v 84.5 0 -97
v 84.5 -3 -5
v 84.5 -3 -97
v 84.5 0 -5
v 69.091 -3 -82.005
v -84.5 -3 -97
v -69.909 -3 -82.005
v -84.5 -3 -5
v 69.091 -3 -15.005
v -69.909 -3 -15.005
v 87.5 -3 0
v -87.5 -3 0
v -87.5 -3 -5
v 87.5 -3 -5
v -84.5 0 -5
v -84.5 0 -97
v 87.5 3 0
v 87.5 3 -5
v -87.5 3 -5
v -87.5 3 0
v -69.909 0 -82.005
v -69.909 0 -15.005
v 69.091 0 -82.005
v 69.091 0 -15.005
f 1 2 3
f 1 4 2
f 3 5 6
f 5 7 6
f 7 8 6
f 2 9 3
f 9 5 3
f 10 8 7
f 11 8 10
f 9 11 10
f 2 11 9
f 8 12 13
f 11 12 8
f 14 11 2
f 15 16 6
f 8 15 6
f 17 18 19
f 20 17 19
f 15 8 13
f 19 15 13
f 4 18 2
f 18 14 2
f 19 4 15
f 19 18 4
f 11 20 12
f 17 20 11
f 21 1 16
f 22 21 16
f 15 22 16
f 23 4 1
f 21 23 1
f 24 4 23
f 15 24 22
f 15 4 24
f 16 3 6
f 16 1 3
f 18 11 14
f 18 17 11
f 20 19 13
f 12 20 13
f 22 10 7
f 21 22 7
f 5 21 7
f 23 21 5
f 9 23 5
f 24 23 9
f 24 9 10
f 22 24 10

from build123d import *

# Parameters (mm, degrees)
SKETCH1_W           = 169
SKETCH1_H           = 6
BOSS_EXTRUDE1_DEPTH = 5
SKETCH2_W           = 169
SKETCH2_H           = 3
BOSS_EXTRUDE2_DEPTH = 92
SKETCH3_W           = 5
SKETCH3_H           = 6
BOSS_EXTRUDE3_DEPTH = 3
SKETCH4_W           = 5
SKETCH4_H           = 6
BOSS_EXTRUDE4_DEPTH = 3
SKETCH8_W           = 139
SKETCH8_H           = 67
CUT_EXTRUDE2_DEPTH  = 3


with BuildPart() as part:
    # Sketch1 → Boss-Extrude1 (new body)
    with BuildSketch(Plane.XY):
        Rectangle(SKETCH1_W, SKETCH1_H)
    extrude(amount=-BOSS_EXTRUDE1_DEPTH)

    # Sketch2 → Boss-Extrude2 (add)
    with BuildSketch(Plane(origin=(0, 0, -5), x_dir=(-1, 0, 0), z_dir=(0, 0, -1))):
        with Locations((0, -1.5)):
            Rectangle(SKETCH2_W, SKETCH2_H)
    extrude(amount=BOSS_EXTRUDE2_DEPTH)

    # Sketch3 → Boss-Extrude3 (add)
    with BuildSketch(Plane(origin=(84.5, 0, 0), x_dir=(0, 0, -1), z_dir=(1, 0, 0))):
        with Locations((2.5, 0)):
            Rectangle(SKETCH3_W, SKETCH3_H)
    extrude(amount=BOSS_EXTRUDE3_DEPTH)

    # Sketch4 → Boss-Extrude4 (add)
    with BuildSketch(Plane.ZY.offset(84.5)):
        with Locations((-2.5, 0)):
            Rectangle(SKETCH4_W, SKETCH4_H)
    extrude(amount=BOSS_EXTRUDE4_DEPTH)

    # Sketch8 → Cut-Extrude2 (cut)
    with BuildSketch(Plane(origin=(0, 0, 0), x_dir=(1, 0, 0), z_dir=(0, 1, 0))):
        with Locations((-0.408697147, 48.504527108)):
            Rectangle(SKETCH8_W, SKETCH8_H)
    extrude(amount=-CUT_EXTRUDE2_DEPTH, mode=Mode.SUBTRACT)


solid = part.part
